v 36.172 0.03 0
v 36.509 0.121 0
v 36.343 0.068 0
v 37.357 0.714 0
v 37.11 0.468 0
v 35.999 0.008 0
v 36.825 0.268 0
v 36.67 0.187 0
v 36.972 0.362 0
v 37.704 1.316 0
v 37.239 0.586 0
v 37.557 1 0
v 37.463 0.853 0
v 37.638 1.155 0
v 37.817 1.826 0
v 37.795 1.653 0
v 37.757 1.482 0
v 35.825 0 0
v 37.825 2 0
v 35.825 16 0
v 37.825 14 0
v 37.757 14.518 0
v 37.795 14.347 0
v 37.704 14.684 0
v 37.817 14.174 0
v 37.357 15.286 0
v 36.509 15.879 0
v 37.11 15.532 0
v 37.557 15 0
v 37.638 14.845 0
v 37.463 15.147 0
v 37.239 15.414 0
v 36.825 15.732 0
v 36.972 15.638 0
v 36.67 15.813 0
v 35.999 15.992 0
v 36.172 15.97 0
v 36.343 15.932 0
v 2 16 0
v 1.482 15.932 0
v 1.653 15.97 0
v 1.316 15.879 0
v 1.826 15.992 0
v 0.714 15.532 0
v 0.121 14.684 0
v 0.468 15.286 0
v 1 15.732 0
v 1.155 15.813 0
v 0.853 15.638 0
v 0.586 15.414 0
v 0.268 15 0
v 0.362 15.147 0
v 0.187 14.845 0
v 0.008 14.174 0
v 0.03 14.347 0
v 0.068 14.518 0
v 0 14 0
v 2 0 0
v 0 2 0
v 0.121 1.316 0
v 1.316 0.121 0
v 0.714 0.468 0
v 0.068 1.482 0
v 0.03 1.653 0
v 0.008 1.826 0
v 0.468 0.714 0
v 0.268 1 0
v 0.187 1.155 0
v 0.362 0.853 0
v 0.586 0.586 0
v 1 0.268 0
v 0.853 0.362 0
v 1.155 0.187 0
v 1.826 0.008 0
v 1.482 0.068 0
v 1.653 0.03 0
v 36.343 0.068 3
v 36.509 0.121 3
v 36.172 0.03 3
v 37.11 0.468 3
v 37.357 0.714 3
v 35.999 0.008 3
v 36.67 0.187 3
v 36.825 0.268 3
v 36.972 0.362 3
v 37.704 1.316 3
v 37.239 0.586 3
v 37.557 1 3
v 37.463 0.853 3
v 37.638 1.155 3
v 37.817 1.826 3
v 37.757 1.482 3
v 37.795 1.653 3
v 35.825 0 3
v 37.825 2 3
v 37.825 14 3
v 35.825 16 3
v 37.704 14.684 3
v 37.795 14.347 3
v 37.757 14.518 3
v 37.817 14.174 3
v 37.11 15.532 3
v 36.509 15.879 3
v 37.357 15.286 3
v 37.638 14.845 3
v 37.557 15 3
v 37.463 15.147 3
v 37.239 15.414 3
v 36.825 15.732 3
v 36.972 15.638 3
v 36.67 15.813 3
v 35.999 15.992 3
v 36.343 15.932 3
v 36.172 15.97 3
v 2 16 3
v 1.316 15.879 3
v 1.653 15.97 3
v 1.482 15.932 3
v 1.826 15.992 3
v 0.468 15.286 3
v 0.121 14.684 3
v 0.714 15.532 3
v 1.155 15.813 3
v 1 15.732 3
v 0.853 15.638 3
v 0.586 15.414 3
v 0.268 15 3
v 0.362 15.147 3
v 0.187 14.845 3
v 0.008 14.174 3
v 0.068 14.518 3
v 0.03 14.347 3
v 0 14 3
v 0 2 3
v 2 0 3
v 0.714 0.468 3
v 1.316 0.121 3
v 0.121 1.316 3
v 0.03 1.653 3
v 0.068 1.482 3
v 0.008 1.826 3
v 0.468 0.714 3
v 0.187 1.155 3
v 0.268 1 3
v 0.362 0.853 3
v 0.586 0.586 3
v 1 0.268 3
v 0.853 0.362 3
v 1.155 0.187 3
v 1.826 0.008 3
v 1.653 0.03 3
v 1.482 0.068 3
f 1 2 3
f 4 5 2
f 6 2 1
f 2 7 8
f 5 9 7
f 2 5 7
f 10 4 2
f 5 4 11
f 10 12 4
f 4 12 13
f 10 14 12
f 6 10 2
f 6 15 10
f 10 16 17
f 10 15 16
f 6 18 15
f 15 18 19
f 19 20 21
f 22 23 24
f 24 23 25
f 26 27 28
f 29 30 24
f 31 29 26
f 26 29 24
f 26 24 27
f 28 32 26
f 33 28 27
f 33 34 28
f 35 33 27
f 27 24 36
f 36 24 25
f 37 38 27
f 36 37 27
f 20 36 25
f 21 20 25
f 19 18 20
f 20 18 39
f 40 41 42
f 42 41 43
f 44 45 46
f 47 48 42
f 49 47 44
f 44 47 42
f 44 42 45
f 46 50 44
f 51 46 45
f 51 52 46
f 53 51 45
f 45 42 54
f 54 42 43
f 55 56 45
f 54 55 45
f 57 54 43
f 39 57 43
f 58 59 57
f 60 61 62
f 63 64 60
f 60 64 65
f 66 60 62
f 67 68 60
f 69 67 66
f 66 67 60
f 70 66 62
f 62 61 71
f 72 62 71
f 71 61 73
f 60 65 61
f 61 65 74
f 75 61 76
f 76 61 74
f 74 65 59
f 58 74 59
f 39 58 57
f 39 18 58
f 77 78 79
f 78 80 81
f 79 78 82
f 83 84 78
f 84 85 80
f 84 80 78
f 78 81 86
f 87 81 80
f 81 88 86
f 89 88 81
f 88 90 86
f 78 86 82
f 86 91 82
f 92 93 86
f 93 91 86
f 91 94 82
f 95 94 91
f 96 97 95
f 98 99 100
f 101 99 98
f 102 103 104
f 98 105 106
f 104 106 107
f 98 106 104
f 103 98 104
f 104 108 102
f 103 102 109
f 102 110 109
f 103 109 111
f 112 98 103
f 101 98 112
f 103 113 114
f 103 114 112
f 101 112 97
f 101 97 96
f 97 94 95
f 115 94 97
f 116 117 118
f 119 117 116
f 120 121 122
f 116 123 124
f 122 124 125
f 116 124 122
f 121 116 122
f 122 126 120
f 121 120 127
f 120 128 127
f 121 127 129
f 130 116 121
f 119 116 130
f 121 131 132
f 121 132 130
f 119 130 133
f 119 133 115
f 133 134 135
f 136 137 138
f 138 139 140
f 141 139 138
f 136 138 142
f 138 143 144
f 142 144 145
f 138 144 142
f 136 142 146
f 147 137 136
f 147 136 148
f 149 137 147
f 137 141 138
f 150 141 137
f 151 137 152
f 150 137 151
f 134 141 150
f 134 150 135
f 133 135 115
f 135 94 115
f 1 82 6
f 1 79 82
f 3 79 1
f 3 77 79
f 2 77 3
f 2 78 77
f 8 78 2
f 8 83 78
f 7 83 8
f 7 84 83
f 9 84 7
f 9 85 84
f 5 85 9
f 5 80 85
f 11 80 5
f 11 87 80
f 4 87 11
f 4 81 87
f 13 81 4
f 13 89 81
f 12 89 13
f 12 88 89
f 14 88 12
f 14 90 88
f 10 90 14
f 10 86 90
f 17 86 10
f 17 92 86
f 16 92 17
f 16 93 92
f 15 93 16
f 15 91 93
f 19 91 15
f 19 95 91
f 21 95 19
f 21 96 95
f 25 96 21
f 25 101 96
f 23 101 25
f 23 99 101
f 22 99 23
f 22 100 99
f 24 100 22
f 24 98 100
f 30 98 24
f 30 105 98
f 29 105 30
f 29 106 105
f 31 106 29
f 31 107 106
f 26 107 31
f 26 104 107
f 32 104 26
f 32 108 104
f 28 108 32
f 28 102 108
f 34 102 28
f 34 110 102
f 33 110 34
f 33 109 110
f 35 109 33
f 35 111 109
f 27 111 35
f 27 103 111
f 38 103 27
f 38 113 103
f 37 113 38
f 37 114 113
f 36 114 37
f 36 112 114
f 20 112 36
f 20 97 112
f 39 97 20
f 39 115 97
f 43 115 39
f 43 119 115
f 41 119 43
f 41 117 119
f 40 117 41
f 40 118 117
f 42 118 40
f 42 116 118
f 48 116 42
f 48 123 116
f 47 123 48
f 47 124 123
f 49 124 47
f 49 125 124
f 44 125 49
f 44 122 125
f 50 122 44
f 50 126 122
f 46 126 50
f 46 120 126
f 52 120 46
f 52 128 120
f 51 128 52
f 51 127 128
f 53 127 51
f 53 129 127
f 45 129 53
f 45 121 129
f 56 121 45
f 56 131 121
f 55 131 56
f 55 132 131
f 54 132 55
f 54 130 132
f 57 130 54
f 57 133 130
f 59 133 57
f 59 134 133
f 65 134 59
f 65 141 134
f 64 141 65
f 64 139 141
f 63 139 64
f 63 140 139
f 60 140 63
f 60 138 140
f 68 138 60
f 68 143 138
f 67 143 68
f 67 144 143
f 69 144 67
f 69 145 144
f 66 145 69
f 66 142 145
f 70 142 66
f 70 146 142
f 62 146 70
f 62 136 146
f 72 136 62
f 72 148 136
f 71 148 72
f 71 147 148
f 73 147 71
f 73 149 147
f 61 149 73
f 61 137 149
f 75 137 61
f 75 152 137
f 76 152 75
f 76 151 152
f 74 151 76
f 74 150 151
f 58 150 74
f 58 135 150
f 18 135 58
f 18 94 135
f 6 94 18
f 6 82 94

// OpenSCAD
// file: dimensoes_geradas.scad
// ARQUIVO GERADO por sim/export_gains.py - não edite à mão; mude sim/params.py e gere de novo.
// Unidades: mm. Estas dimensões saem do dimensionamento (sim/sizing.py).

l_w            = 96;   // pivô -> eixo do motor
n_parafusos    = 12;
r_parafusos    = 48;   // raio do círculo de parafusos M8
r_aro_int      = 39;
r_ext          = 58;   // raio externo do aro
r_aleta        = 66;   // raio externo do anel dentado do encoder
esp_roda       = 12;
esp_alma       = 5;
r_cubo         = 17;
n_raios        = 6;
larg_raio      = 10;
esp_aleta      = 2;
n_ranhuras     = 40;
furo_m8        = 8.4;
angulo_batente = 25;   // graus: onde o batente segura o braço
// file: params.scad
// Medidas das peças compradas e escolhas de projeto. Unidades: mm.
//
// CONFERIR = medir com paquímetro na peça real antes de imprimir; os valores
// abaixo são os típicos desses componentes. Este arquivo só tem números
// (nada de expressões): cad/folgas.py lê estes valores para conferir as folgas.
//
// Eixos do conjunto montado: origem no eixo do pivô; Z para cima (ao longo do
// braço); Y ao longo do pivô, positivo para o lado da roda; X lateral.

include <dimensoes_geradas.scad>

$fn = 72;
folga = 0.25;              // folga de impressão em encaixes

// ---- Motor 775 (CONFERIR) ----
motor_d          = 44.5;   // diâmetro da carcaça (há versões de 42)
motor_comp       = 67;     // comprimento da carcaça
motor_ressalto_d = 17.5;   // ressalto do mancal na face
motor_ressalto_h = 4.6;
motor_furos_dist = 29;     // distância entre os 2 furos M4 da face
motor_parafuso_d = 4.4;    // passagem do M4
motor_eixo_d     = 5;
motor_eixo_comp  = 17;     // eixo para fora do ressalto

// ---- Flange metálico de 5 mm (CONFERIR) ----
flange_d         = 22;     // diâmetro do disco
flange_esp       = 3;      // espessura do disco
flange_cubo_d    = 10;     // diâmetro do cubo (parte com os parafusos de trava)
flange_cubo_comp = 9;      // comprimento do cubo
flange_pcd       = 16;     // diâmetro do círculo dos furos
flange_n         = 4;      // número de furos

// ---- Fixadores ----
inserto_m3_d     = 4.0;    // furo para inserto térmico M3 (CONFERIR no seu inserto)
inserto_m3_prof  = 5;
passagem_m3      = 3.4;
m8_chave         = 13;     // porca M8, entre faces
m8_porca_h       = 6.5;
m8_cabeca_h      = 5.3;
m8_arruela_h     = 1.6;
m8_comp          = 16;     // parafuso M8x16 (mais comprido bate no braço)
m4_cabeca_h      = 3;      // cabeça do M4 que prende o motor

// ---- Rolamento 608-ZZ, barra e colar ----
rol_d            = 22;
rol_esp          = 7;
rol_ombro_d      = 15;     // furo entre os assentos: encosta só no anel externo
barra_d          = 8;
colar_d          = 14;     // colar SCC8 8-14-8
colar_esp        = 8;

// ---- Sensor óptico de fenda com LM393 (CONFERIR) ----
sens_comp        = 32;     // placa
sens_larg        = 14;
sens_pcb         = 1.6;
sens_torre_h     = 10.8;   // altura das torres acima da placa
sens_feixe       = 2.8;    // distância do topo das torres ao feixe
sens_fenda       = 5;      // vão entre as torres
sens_cabeca      = 6;      // comprimento do bloco do sensor ao longo da placa
sens_penetra     = 6.5;    // quanto o anel dentado entra na fenda
sens_furo_pos    = 22;     // do centro óptico ao furo de fixação da placa
sens_furo_d      = 2.6;    // furo guia para parafuso M3 direto no plástico

// ---- MPU6050 (GY-521) ----
mpu_furos_dist   = 15.2;
mpu_h            = 48;     // altura dos furos acima do pivô

// ---- Braço ----
esp_braco        = 8;      // espessura da placa
esp_face_motor   = 3.5;    // parede que sobra onde o motor é parafusado
r_pivo           = 18;     // raio do contorno em volta do pivô
tubo_d           = 32;     // tubo dos rolamentos
tubo_comp        = 34;
cauda            = 40;     // prolongamento abaixo do pivô que bate nos batentes
larg_cauda       = 14;
y_roda           = 8;      // da face da frente do braço até a face de trás da roda
sup_furos_dist   = 24;     // insertos do suporte dos sensores
sup_furos_h      = 33;     // altura desses insertos acima do pivô

// ---- Suporte dos sensores ----
sup_esp          = 4;      // espessura da prateleira
sup_aba_esp      = 3;      // espessura da aba parafusada no braço
sup_aba_alt      = 18;
sup_rasgo        = 8;      // curso do ajuste de altura

// ---- Base ----
h_pivo           = 50;     // altura do pivô acima do tampo da base
base_x           = 170;
base_y_frente    = 45;     // quanto a base avança para o lado da roda
base_y_tras      = 140;    // quanto avança para trás (eletrônica)
base_esp         = 6;
mancal_larg      = 26;     // suportes da barra
mancal_esp       = 12;
mancal_topo      = 11;     // material acima do centro da barra
batente_topo     = -13;    // altura do topo dos batentes (abaixo do pivô)
tpu_esp          = 3;      // almofada de TPU colada no batente

// ---- Bandeja da eletrônica ----
bandeja_x        = 150;
bandeja_y        = 66;
bandeja_esp      = 3;
bandeja_passo    = 10;     // grade de furos M3 para prender os módulos
bandeja_altura   = 8;      // colunas na base (fios passam por baixo)

// ---- Proteção de policarbonato (placa em pé na frente da roda) ----
prot_larg        = 230;
prot_alt         = 230;
prot_rasgo       = 3.4;    // ranhura para placa de 2 a 3 mm
prot_y           = 39;     // plano da placa
prot_poste_x     = 60;     // posição dos dois postes
poste_larg       = 16;
poste_prof       = 14;
poste_alt        = 40;

// ---- Fixação da base na mesa ----
furo_fixacao     = 4.5;
// file: derivados.scad
// Grandezas calculadas a partir de params.scad. As mesmas contas estão em
// cad/folgas.py, que confere as folgas sem precisar do OpenSCAD.

include <params.scad>

// eixo do motor para fora da face da frente do braço
eixo_fora = motor_eixo_comp + motor_ressalto_h - esp_face_motor;

// pilha no eixo, medida a partir da face da frente do braço (Y)
y_roda_frente = y_roda + esp_roda;              // face da frente da roda (lado das cabeças M8)
y_alma        = y_roda_frente - esp_alma;       // face de trás do cubo da roda = onde o flange encosta
y_flange      = y_alma - flange_esp;            // disco do flange
y_cubo        = y_flange - flange_cubo_comp;    // ponta do cubo do flange (lado do motor)
y_aleta       = y_roda_frente - esp_aleta / 2;  // plano médio do anel dentado

// sensores: as torres apontam para o centro da roda
r_feixe       = r_aleta - sens_penetra + sens_feixe;                   // raio onde o feixe corta os dentes
h_prateleira  = l_w - (r_aleta - sens_penetra + sens_torre_h + sens_pcb);  // topo da prateleira acima do pivô
// dois sensores defasados de 1 + 1/4 de passo -> sinais em quadratura
ang_quadratura = 1.25 * 360 / n_ranhuras;
dist_sensores  = 2 * r_feixe * sin(ang_quadratura / 2);
sup_larg       = dist_sensores + 2 * (sens_comp - sens_cabeca / 2) + 6;
sup_prof       = y_aleta + sens_larg / 2 + 2;

// posições ao longo do pivô (Y) dos suportes da barra
y_mancal_frente = colar_esp + 1;                  // depois do colar da frente
y_mancal_tras   = -(tubo_comp + colar_esp + 1) - mancal_esp;

// suporte dos sensores
z_prat_base   = h_prateleira - sup_esp;
aba_topo      = sup_furos_h + sup_rasgo / 2 + 3.5;
aba_larg      = sup_furos_dist + 12;

// base
z_base        = -h_pivo;                 // tampo da base
y_bandeja     = -base_y_tras + 4 + bandeja_y / 2;

// almofada de TPU: cobre a face inclinada do batente
tpu_comp      = (batente_topo - z_base) / cos(angulo_batente) - 3;
tpu_larg      = 16;

// barra: do suporte de trás ao da frente, 3 mm para fora de cada lado
barra_comp    = (y_mancal_frente + mancal_esp) - y_mancal_tras + 6;
// main file
// Almofada de TPU para a face inclinada dos batentes (imprimir 2).
// TPU 95A, 100 % de preenchimento, devagar (20-30 mm/s). Colar com cola de
// contato ou fita dupla face forte.

include <derivados.scad>

module batente_tpu() {
    linear_extrude(height = tpu_esp)
        offset(r = 2) offset(delta = -2) square([tpu_comp, tpu_larg]);
}

batente_tpu();
